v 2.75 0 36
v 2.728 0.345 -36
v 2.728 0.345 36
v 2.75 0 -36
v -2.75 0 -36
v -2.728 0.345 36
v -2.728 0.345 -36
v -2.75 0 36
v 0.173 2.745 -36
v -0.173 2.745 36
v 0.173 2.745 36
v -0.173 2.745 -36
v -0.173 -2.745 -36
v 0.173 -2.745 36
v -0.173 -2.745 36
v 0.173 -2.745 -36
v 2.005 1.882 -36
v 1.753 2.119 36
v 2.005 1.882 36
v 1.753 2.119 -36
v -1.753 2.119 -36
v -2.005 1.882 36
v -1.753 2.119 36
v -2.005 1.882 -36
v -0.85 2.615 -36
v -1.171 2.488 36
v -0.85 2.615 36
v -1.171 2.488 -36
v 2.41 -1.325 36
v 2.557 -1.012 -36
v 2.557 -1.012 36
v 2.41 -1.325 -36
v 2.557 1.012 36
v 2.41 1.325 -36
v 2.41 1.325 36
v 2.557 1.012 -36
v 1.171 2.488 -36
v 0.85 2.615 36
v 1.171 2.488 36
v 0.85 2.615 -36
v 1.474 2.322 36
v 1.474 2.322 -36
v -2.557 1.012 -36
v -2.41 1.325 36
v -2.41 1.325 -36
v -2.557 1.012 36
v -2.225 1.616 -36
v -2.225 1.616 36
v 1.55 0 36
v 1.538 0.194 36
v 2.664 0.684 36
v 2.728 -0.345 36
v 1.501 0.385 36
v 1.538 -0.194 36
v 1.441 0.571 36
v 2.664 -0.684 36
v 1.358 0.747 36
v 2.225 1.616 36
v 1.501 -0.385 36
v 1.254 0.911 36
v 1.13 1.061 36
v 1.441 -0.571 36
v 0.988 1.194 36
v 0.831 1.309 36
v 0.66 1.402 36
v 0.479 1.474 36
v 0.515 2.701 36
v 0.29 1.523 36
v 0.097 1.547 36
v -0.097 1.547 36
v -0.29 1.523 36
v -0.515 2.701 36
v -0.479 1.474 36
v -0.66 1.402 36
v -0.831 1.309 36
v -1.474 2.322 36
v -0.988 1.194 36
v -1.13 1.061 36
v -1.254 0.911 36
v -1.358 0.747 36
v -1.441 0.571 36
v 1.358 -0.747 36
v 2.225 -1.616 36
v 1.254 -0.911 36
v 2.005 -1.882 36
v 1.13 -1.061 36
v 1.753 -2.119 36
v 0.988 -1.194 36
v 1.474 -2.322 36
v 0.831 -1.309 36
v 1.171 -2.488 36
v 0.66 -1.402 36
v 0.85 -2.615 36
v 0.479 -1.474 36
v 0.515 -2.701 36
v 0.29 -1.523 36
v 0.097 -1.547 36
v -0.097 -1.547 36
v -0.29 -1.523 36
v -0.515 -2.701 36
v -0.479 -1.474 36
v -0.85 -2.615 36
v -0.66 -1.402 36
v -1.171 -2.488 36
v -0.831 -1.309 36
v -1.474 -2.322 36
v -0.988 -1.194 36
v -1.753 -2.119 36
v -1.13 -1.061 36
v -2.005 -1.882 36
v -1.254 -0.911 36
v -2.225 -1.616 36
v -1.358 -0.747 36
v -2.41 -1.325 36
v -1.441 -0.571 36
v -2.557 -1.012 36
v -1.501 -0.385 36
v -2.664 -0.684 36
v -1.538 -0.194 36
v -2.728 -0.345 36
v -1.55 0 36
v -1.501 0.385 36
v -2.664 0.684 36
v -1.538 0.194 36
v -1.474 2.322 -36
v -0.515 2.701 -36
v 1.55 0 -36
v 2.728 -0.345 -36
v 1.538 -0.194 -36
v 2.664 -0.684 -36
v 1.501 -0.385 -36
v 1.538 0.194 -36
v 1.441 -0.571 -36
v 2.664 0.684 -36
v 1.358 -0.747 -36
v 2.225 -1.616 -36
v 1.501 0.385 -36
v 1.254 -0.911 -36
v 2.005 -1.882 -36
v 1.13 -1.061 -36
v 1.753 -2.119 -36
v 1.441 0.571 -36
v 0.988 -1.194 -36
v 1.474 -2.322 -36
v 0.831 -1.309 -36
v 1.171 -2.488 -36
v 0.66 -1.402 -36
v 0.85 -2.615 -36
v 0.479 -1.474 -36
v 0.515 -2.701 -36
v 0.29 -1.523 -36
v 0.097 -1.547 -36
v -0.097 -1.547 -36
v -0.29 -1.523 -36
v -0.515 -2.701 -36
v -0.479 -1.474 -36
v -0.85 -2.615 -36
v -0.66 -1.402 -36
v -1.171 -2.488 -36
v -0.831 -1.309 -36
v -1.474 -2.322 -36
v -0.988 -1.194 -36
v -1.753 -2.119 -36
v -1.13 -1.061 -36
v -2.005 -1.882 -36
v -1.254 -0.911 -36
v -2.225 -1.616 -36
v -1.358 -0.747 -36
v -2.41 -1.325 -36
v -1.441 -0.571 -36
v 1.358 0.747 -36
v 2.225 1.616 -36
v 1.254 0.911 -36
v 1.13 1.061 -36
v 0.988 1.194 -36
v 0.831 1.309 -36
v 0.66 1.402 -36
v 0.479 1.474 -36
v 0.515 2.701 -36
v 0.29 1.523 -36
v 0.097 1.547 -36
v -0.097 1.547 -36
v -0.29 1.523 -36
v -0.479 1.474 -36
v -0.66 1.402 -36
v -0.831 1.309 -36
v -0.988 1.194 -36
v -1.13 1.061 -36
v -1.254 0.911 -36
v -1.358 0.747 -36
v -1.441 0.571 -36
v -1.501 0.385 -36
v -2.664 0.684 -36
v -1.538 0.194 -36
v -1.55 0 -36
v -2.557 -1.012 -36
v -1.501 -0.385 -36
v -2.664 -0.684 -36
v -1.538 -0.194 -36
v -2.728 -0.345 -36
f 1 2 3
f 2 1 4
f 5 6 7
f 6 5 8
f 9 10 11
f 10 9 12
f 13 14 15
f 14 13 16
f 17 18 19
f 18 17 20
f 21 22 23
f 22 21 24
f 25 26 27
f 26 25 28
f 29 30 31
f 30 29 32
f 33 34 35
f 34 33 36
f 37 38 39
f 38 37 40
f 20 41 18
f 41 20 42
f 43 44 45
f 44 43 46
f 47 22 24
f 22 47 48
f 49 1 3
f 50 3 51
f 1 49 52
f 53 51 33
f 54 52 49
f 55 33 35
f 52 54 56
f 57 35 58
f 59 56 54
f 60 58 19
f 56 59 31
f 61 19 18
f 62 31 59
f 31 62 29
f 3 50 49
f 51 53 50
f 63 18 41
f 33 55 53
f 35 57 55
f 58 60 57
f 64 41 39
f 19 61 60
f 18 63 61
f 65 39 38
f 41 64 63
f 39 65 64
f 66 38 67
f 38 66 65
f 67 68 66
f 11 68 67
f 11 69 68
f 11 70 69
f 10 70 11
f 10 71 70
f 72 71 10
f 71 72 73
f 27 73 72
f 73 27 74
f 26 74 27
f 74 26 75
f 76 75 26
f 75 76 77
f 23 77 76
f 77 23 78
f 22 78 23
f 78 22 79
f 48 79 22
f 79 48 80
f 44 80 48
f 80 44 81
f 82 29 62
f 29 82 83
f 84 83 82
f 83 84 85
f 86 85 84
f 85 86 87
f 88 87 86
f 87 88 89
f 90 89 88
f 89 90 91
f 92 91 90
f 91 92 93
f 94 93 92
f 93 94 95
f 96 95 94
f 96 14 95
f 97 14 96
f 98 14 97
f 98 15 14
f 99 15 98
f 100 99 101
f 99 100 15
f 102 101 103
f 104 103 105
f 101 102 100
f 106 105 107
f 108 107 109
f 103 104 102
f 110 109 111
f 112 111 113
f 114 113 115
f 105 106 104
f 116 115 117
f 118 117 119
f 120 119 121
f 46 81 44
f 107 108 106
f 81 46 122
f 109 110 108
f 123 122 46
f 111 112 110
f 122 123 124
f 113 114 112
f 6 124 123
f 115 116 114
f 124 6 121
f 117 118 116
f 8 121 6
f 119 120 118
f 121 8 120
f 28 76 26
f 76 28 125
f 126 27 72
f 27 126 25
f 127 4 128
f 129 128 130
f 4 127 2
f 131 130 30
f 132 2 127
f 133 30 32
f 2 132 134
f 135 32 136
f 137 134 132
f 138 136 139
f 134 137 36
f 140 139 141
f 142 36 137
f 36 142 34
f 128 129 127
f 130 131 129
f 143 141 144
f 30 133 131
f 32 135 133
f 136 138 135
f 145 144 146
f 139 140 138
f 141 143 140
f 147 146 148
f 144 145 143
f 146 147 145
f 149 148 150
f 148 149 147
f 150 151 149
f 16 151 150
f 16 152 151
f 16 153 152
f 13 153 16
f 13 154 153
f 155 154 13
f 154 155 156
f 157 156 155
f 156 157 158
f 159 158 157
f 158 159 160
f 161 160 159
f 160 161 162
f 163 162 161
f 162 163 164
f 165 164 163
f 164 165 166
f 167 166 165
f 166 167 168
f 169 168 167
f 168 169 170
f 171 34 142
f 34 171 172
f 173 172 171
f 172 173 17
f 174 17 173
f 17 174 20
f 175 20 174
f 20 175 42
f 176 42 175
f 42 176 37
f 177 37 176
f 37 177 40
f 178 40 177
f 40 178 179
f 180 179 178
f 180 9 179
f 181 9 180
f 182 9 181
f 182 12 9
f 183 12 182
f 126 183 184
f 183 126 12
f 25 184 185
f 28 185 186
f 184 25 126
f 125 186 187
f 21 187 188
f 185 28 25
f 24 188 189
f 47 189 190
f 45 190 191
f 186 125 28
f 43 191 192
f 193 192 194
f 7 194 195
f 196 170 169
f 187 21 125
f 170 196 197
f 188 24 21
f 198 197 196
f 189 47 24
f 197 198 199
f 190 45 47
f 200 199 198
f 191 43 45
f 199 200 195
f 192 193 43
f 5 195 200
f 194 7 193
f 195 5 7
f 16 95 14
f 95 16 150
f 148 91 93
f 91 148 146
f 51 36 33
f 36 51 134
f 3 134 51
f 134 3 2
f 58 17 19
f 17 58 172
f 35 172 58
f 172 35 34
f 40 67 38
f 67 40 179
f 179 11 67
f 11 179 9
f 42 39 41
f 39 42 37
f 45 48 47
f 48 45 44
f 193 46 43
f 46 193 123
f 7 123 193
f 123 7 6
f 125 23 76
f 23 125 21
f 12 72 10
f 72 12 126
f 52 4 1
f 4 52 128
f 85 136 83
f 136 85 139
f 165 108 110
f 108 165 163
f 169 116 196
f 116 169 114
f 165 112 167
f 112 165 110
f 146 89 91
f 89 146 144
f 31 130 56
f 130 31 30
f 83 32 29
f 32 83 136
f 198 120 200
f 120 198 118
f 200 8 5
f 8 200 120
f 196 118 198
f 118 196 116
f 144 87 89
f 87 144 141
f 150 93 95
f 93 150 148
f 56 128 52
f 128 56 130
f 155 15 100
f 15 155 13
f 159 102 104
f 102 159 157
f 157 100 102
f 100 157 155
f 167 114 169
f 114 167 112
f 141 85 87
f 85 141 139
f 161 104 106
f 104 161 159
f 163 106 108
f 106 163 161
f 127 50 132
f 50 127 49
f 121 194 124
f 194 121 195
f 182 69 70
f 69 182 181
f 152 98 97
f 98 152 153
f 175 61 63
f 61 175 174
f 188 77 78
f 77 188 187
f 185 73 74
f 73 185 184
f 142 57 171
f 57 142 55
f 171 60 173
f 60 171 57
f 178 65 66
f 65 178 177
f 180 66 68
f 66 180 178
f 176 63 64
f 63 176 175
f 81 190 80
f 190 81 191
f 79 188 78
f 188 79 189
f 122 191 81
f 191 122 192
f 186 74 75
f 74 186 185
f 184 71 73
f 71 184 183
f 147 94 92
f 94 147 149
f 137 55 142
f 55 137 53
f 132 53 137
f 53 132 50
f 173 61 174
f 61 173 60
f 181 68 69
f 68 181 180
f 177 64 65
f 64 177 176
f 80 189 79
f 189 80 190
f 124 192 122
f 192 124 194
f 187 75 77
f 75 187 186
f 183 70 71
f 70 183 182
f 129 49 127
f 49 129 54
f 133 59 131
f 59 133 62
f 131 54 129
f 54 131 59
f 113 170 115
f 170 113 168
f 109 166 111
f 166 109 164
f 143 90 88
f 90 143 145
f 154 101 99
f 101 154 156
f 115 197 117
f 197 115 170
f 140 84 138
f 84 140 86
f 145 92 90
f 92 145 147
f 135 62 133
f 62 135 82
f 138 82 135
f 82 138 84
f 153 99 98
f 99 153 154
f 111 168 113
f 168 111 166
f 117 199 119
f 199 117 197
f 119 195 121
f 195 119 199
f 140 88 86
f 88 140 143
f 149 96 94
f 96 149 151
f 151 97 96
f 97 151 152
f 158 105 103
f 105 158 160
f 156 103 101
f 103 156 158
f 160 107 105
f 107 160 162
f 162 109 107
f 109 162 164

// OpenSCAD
$fn = 50;


difference() {
	union() {
		translate(v = [0, 0, -36.0000000000]) {
			cylinder(h = 72, r = 2.7500000000);
		}
	}
	union() {
		translate(v = [0, 0, -100.0000000000]) {
			cylinder(h = 200, r = 1.5500000000);
		}
	}
}
